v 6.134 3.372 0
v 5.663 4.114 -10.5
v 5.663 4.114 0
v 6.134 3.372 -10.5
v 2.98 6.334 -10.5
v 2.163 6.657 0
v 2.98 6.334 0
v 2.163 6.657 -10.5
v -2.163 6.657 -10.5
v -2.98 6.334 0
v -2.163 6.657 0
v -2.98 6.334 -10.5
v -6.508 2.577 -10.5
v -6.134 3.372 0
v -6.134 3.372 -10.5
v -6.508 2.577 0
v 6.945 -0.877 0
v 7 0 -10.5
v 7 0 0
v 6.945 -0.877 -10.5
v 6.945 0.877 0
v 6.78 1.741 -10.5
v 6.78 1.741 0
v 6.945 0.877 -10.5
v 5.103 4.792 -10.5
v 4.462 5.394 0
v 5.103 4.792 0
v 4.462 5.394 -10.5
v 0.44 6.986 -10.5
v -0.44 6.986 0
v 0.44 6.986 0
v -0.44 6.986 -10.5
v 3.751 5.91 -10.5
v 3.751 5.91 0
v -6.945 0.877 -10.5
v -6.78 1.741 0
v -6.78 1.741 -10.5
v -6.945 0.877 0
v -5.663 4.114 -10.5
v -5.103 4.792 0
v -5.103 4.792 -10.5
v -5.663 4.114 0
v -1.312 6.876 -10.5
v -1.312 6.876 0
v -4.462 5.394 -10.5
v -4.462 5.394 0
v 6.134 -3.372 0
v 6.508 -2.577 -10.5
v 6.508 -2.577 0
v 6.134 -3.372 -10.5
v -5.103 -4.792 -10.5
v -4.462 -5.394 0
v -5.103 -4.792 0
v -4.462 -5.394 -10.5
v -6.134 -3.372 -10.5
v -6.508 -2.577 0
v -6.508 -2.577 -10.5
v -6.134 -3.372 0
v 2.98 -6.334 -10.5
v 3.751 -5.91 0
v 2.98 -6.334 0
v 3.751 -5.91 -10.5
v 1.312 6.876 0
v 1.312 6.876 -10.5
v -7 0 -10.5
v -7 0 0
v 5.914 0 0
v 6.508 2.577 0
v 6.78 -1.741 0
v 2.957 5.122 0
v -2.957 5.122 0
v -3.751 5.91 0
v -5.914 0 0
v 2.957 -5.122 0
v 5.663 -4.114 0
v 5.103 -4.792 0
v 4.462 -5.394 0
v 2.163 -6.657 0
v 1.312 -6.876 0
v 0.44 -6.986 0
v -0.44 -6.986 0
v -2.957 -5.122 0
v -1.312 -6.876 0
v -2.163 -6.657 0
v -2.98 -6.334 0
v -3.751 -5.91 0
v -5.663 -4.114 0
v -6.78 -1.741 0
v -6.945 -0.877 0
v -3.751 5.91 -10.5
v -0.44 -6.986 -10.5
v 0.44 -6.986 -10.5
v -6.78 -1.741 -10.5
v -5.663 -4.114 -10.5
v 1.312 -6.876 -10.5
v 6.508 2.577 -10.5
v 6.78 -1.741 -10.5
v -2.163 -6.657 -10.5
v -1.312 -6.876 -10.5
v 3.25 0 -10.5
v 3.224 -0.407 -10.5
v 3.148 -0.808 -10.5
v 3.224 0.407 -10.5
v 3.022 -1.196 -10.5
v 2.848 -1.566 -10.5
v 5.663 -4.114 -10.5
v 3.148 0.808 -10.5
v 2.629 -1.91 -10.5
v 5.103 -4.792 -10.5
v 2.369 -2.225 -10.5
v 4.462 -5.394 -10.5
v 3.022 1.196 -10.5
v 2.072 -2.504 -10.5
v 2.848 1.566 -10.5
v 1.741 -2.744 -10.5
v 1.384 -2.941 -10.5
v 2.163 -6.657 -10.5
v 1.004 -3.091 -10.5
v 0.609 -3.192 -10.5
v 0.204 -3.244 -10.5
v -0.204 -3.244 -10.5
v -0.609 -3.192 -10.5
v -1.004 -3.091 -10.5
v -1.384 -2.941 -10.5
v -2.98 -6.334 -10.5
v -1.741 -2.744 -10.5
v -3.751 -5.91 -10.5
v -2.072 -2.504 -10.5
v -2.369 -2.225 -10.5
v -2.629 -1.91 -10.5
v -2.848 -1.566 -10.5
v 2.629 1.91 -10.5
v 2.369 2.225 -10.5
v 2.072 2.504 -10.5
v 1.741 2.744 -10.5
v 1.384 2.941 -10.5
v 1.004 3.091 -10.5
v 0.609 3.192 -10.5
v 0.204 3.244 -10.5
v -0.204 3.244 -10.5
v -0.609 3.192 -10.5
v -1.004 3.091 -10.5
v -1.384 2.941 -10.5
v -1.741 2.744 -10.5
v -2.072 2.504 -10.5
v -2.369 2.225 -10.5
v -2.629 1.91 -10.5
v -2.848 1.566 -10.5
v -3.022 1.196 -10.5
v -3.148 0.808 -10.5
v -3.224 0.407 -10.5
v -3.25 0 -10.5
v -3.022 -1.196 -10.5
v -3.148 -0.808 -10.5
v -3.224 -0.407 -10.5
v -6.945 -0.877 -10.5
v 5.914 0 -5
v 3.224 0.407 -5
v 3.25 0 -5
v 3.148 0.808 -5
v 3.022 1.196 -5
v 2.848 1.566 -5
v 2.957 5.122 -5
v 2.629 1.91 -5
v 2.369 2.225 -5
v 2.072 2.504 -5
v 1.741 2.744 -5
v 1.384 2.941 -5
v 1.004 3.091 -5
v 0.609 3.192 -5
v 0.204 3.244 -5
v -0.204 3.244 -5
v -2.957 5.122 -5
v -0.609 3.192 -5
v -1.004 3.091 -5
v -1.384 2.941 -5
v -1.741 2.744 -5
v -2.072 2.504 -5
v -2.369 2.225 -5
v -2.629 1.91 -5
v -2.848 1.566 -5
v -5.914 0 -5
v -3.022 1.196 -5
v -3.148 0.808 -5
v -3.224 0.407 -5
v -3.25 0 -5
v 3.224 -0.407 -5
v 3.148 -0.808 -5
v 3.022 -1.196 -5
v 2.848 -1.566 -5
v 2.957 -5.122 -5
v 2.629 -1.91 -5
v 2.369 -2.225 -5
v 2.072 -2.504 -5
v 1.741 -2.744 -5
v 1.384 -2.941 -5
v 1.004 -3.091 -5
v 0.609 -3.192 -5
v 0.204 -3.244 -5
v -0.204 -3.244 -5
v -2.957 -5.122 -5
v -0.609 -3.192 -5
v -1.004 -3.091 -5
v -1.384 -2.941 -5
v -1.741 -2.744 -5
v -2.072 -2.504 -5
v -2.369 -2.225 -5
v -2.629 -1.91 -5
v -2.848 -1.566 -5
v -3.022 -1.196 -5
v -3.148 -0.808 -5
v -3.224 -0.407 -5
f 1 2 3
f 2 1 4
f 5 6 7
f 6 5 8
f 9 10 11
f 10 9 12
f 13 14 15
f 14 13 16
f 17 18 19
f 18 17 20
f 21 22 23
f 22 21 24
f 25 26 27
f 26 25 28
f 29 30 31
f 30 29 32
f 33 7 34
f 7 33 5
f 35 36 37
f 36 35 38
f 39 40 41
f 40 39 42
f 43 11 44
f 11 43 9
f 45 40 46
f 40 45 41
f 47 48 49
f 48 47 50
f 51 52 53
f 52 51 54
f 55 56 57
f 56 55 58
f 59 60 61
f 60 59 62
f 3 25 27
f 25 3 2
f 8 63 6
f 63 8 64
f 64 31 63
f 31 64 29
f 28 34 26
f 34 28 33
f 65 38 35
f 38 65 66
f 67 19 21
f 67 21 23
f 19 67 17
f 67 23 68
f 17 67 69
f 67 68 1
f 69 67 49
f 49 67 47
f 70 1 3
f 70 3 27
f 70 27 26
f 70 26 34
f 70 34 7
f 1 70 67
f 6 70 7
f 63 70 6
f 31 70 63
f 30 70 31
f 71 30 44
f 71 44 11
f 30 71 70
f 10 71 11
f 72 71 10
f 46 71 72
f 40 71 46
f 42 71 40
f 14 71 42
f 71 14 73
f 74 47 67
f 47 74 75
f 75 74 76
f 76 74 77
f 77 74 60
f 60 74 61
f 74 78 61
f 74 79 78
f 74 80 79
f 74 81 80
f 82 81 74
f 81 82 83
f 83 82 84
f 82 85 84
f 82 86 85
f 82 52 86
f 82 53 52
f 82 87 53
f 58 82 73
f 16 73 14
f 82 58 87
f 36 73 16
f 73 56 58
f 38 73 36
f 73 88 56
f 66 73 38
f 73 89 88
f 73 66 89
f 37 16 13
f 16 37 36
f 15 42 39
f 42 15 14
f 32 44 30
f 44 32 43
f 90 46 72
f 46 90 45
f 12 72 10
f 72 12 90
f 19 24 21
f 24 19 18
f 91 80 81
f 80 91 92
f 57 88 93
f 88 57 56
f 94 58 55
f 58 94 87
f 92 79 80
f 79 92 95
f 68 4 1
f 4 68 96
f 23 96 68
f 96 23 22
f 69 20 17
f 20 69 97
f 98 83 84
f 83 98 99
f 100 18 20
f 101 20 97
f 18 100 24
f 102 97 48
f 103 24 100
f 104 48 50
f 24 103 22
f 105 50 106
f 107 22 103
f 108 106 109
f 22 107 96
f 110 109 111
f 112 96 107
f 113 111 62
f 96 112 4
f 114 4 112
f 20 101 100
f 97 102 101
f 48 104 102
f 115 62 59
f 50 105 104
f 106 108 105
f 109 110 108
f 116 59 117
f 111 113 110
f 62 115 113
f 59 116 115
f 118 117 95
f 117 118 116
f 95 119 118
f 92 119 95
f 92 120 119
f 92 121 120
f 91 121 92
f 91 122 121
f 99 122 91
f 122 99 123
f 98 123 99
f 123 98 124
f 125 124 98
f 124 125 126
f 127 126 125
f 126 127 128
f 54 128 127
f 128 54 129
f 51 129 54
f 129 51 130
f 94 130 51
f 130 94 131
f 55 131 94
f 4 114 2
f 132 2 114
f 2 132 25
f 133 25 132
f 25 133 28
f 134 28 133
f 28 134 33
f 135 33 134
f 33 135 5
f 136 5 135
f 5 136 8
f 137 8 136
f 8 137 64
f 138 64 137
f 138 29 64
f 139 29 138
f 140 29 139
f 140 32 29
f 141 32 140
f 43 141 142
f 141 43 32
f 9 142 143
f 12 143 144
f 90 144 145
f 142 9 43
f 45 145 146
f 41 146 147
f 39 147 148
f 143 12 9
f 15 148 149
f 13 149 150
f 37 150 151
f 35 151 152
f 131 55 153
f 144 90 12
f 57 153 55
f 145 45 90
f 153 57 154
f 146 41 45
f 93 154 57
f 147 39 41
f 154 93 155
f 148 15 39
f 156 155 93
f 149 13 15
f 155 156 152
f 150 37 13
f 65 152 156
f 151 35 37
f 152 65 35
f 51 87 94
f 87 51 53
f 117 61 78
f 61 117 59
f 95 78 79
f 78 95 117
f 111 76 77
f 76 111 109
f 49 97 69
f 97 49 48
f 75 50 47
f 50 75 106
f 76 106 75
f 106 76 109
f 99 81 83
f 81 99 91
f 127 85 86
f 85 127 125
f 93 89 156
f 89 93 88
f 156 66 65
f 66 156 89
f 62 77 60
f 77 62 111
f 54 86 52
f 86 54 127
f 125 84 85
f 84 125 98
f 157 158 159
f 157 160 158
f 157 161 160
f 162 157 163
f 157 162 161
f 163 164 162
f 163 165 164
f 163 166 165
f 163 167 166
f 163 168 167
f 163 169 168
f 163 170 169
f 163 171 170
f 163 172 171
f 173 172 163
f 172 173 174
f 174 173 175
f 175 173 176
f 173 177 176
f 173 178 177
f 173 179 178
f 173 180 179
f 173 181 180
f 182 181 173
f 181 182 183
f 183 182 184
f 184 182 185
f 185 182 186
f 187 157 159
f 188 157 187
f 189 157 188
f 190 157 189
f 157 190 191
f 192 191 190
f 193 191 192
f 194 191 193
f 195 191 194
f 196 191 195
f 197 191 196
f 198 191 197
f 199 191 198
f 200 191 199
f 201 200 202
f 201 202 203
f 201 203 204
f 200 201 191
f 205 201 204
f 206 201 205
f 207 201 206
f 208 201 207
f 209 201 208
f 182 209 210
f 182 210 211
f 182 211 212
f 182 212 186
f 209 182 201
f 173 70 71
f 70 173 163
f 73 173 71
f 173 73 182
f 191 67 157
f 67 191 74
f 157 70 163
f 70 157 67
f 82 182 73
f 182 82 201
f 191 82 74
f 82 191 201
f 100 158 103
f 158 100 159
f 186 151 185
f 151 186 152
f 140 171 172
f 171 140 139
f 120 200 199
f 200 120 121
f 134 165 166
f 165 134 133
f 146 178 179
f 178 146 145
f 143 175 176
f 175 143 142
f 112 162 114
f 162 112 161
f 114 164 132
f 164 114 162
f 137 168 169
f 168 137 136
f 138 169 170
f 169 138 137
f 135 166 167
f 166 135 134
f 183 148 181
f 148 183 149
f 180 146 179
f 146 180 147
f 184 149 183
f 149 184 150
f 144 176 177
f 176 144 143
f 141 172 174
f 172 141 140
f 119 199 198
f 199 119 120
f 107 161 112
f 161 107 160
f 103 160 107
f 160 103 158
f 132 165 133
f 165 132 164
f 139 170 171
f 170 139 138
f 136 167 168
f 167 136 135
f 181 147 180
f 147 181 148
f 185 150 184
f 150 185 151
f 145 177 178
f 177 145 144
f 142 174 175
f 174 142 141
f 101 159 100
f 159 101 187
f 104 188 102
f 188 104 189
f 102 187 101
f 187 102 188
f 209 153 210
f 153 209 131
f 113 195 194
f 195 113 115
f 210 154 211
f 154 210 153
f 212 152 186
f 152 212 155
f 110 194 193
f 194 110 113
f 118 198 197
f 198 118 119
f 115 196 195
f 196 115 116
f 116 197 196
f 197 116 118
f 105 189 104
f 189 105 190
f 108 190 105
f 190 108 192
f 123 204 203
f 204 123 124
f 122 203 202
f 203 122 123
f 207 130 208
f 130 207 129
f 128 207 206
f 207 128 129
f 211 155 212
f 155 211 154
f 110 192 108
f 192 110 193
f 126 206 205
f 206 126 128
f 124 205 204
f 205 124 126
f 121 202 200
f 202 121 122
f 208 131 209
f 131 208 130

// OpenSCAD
$fn = 50;

difference() {
	union() {
		translate(v = [0, 0, -10.5]) {
			cylinder(h = 10.5, r = 7.0);
		}
		#translate(v = [0, 0, -12.0]) {
			cylinder(h = 12, r = 2.875);
		}
	}
	union() {
		translate(v = [0, 0, 0]) {
			rotate(a = [0, 0, 0]) {
				difference() {
					union() {
						translate(v = [0, 0, -5]) {
							linear_extrude(height = 5) {
								polygon(points = [[5.914249999999999, 0.0], [2.957125, 5.1218907443321156], [-2.9571249999999982, 5.1218907443321156], [-5.914249999999999, 7.242867331857232e-16], [-2.9571250000000022, -5.121890744332115], [2.9571249999999956, -5.121890744332118]]);
							}
						}
					}
					union();
				}
			}
		}
		#translate(v = [0, 0, -100.0]) {
			cylinder(h = 200, r = 3.25);
		}
	}
}
